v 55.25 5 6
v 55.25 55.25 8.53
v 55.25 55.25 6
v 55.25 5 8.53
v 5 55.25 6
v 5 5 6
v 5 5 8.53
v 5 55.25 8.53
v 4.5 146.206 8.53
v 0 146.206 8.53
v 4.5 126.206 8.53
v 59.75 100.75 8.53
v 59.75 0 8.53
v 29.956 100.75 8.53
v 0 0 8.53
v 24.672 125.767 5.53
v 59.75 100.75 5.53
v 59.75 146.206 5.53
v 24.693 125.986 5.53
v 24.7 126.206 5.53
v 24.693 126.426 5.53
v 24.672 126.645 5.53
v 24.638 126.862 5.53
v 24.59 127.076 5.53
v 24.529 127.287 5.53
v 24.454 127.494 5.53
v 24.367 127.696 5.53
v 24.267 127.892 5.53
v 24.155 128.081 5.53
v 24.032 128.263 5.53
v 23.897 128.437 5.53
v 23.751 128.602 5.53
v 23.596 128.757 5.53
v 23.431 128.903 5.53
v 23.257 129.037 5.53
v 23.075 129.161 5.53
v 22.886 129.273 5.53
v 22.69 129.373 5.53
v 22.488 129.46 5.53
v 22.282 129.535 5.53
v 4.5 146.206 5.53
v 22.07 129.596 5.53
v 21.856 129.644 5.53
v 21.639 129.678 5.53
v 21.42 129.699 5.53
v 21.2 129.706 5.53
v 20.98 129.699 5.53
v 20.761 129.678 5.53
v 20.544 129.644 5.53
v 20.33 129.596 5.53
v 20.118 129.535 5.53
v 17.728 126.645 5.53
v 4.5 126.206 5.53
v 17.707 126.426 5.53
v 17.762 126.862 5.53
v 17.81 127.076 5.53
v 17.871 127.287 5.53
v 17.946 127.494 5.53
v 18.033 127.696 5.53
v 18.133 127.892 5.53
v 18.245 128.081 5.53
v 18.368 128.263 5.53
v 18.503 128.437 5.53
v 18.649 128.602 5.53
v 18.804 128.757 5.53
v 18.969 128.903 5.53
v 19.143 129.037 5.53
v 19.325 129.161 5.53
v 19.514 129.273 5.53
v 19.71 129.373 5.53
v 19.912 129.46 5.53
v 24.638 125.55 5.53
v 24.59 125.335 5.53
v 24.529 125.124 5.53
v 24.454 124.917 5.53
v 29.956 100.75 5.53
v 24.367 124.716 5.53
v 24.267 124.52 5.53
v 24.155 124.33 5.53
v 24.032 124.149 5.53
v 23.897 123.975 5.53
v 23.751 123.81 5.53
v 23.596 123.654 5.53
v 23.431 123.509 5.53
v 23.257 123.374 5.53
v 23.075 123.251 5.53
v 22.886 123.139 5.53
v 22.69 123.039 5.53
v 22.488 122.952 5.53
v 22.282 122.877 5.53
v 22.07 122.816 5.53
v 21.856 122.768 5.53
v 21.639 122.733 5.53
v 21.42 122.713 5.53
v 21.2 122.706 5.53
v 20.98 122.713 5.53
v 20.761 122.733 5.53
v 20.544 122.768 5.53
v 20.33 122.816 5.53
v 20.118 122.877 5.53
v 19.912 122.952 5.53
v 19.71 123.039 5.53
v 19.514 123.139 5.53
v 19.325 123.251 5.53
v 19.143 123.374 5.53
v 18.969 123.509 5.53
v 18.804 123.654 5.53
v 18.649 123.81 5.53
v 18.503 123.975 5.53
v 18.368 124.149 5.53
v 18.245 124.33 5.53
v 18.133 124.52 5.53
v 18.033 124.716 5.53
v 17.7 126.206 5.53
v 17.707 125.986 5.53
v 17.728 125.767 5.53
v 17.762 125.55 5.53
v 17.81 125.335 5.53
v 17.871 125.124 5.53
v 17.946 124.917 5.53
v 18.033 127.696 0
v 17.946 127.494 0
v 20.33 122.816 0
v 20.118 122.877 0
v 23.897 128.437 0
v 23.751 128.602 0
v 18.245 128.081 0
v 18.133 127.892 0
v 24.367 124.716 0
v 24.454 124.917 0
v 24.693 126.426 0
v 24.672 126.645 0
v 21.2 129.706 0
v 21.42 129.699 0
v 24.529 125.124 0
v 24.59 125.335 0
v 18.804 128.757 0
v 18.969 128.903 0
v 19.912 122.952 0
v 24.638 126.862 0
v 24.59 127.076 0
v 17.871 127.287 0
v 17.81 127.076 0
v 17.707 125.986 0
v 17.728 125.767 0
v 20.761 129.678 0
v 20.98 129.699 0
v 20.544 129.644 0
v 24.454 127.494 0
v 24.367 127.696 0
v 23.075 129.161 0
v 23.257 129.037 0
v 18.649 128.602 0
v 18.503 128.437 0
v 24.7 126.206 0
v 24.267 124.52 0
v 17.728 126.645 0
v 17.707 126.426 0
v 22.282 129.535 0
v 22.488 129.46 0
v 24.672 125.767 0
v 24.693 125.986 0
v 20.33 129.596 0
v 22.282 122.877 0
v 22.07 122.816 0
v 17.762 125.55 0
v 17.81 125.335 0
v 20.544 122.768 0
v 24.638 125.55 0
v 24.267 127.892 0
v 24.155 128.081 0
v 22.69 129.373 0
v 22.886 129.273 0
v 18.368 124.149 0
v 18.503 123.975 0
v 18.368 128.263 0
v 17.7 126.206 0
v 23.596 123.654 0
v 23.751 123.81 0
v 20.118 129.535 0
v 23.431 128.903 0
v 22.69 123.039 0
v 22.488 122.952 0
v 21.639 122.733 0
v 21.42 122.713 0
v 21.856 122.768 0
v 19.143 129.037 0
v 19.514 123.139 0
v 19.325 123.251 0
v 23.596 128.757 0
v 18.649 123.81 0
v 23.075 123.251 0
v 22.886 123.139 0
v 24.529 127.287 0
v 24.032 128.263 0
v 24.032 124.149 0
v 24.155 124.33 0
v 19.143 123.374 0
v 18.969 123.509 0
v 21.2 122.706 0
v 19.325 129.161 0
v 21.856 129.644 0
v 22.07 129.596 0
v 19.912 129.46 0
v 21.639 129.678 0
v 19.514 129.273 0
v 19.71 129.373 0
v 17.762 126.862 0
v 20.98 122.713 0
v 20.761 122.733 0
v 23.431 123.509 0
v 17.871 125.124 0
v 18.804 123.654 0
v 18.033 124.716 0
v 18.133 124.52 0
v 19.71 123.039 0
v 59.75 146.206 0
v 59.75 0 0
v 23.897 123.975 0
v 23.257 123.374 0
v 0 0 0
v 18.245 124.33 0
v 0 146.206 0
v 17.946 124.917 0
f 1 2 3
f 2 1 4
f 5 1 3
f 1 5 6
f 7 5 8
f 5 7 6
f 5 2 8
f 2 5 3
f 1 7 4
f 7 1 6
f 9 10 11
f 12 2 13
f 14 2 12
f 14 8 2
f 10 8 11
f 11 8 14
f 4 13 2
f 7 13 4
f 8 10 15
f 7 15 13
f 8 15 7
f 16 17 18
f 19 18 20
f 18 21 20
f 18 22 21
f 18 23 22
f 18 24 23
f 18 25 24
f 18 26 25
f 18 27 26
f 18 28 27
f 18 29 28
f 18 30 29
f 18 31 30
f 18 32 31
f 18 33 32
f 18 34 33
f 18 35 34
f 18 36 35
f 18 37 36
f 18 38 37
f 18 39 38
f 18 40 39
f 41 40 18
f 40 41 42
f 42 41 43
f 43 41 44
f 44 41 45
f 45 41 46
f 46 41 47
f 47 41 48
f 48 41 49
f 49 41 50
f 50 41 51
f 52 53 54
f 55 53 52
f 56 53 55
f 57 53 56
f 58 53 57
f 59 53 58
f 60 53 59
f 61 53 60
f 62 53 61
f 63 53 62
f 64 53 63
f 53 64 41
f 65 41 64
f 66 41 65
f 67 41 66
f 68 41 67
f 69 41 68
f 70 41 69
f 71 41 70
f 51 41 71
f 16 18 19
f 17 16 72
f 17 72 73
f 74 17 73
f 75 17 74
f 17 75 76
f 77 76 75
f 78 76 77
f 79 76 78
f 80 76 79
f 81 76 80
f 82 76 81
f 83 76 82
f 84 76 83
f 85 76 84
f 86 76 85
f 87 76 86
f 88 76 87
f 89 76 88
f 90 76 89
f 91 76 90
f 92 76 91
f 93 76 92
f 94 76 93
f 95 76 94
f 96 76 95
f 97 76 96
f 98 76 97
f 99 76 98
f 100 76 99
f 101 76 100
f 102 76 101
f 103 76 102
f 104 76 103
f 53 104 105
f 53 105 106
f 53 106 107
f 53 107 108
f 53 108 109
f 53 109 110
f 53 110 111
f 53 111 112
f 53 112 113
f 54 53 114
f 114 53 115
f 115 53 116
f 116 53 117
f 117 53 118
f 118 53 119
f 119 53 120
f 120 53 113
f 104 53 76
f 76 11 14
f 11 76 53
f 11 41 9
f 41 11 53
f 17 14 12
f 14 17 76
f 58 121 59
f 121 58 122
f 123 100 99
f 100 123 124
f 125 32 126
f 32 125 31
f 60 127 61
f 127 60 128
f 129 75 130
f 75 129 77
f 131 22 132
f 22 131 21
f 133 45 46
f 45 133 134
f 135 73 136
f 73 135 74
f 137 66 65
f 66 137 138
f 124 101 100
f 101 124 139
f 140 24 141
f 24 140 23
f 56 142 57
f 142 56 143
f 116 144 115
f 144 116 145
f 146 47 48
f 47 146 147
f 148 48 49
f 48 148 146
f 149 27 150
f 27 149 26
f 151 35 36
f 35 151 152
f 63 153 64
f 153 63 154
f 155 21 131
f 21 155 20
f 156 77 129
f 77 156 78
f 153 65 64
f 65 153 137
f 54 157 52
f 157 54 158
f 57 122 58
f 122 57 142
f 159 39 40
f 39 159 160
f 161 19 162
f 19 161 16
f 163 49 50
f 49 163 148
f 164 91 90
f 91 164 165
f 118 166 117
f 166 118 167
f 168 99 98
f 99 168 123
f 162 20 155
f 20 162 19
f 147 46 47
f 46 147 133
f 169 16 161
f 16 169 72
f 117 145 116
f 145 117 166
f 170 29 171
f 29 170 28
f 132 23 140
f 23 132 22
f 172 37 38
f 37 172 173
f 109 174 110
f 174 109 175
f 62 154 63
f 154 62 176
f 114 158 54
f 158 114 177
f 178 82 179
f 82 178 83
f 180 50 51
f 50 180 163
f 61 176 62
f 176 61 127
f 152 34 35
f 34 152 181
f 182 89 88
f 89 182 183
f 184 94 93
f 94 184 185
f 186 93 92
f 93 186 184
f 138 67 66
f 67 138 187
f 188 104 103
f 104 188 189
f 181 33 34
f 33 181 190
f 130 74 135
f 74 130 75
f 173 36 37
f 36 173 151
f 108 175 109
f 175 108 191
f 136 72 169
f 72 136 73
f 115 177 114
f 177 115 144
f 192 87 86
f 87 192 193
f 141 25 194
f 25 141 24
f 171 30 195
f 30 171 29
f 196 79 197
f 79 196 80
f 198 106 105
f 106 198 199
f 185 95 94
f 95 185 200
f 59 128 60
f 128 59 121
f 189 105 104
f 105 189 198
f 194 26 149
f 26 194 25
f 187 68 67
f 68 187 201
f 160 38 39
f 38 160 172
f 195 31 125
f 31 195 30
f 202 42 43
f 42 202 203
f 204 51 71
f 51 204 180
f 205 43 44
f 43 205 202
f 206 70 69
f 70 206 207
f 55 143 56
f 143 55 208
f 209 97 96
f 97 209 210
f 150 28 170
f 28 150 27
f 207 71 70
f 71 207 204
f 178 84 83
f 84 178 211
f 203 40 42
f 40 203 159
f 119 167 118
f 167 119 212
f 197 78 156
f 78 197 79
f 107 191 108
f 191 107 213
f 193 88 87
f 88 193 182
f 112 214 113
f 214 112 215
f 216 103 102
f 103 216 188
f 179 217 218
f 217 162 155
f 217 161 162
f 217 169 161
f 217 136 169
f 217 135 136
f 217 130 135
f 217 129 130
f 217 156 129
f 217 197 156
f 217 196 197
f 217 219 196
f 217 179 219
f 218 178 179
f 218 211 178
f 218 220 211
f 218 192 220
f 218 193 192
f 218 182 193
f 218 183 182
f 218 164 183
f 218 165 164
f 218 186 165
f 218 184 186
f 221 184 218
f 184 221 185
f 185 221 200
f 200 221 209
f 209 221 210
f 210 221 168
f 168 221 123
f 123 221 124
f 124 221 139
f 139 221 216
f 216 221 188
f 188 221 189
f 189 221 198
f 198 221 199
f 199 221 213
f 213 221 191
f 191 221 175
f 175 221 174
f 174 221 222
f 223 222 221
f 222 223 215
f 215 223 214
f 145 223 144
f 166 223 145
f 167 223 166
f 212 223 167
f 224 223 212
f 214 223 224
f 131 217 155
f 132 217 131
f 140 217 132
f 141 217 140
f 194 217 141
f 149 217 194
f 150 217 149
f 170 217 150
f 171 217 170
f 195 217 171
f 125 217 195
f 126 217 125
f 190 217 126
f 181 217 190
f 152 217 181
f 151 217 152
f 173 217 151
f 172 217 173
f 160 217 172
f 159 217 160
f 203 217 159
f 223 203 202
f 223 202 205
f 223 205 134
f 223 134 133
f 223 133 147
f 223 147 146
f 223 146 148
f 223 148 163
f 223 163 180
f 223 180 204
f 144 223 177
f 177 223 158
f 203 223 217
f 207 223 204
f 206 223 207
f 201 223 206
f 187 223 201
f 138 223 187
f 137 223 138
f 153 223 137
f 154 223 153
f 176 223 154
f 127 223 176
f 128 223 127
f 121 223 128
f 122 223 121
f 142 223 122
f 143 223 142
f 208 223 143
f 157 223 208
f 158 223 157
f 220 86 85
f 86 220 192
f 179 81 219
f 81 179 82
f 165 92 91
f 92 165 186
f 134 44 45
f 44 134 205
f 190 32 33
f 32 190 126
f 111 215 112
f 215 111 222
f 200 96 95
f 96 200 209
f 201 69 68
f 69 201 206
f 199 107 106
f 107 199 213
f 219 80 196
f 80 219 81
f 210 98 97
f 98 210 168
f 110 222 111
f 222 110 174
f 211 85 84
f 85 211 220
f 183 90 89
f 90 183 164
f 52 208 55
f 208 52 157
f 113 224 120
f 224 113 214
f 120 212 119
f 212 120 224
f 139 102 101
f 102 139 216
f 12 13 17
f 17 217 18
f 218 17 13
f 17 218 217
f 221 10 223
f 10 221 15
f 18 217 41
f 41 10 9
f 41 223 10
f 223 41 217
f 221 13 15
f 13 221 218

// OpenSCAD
$fn=100;

wyze_foot = 52 - 1.75;  // it's square
wyze_foot_thick = 6.0;
wyze_boarder = 5.0;

hypotenuse_corner = 36.0;
square_corner = sqrt(hypotenuse_corner * hypotenuse_corner / 2) ;
echo ("square_corner = ", square_corner);

area_length = 4.5;
area_1_depth  = 20.0;

prusa_2_camera = 45.0 + 16;
prusa_plate = 3;
prusa_spacer = 5.53;


hole_across = 16.7;
hole_diameter = 6.0 + 1;

box_length = area_length + wyze_boarder + wyze_foot;

box_depth =  area_length  + square_corner + prusa_2_camera + wyze_foot + wyze_boarder;
box_height =  prusa_plate + prusa_spacer;

difference()
{
    cube( [box_length, box_depth, box_height] );
    union() {
        translate ( [ wyze_boarder, wyze_boarder, wyze_foot_thick ])
        cube ( [wyze_foot, wyze_foot, wyze_foot_thick]);
    
        translate ( [ area_length, box_depth - area_1_depth, box_height - prusa_plate ])
        rotate( [ 0, 0, -45 ])
        cube ( [hypotenuse_corner, hypotenuse_corner, prusa_plate ]);
        
        translate ( [ area_length, box_depth - area_1_depth , box_height - prusa_plate] )
        cube( [box_length, hypotenuse_corner/2 + 10,  prusa_plate] );

        translate ( [ area_length + square_corner, box_depth - square_corner - area_1_depth, box_height - prusa_plate] )
        #cube( [box_length, square_corner,   prusa_plate] );
        
        translate( [ hole_across + area_length, box_depth - area_1_depth , 0 ])
        cylinder(box_height, d = hole_diameter);

    }
}
